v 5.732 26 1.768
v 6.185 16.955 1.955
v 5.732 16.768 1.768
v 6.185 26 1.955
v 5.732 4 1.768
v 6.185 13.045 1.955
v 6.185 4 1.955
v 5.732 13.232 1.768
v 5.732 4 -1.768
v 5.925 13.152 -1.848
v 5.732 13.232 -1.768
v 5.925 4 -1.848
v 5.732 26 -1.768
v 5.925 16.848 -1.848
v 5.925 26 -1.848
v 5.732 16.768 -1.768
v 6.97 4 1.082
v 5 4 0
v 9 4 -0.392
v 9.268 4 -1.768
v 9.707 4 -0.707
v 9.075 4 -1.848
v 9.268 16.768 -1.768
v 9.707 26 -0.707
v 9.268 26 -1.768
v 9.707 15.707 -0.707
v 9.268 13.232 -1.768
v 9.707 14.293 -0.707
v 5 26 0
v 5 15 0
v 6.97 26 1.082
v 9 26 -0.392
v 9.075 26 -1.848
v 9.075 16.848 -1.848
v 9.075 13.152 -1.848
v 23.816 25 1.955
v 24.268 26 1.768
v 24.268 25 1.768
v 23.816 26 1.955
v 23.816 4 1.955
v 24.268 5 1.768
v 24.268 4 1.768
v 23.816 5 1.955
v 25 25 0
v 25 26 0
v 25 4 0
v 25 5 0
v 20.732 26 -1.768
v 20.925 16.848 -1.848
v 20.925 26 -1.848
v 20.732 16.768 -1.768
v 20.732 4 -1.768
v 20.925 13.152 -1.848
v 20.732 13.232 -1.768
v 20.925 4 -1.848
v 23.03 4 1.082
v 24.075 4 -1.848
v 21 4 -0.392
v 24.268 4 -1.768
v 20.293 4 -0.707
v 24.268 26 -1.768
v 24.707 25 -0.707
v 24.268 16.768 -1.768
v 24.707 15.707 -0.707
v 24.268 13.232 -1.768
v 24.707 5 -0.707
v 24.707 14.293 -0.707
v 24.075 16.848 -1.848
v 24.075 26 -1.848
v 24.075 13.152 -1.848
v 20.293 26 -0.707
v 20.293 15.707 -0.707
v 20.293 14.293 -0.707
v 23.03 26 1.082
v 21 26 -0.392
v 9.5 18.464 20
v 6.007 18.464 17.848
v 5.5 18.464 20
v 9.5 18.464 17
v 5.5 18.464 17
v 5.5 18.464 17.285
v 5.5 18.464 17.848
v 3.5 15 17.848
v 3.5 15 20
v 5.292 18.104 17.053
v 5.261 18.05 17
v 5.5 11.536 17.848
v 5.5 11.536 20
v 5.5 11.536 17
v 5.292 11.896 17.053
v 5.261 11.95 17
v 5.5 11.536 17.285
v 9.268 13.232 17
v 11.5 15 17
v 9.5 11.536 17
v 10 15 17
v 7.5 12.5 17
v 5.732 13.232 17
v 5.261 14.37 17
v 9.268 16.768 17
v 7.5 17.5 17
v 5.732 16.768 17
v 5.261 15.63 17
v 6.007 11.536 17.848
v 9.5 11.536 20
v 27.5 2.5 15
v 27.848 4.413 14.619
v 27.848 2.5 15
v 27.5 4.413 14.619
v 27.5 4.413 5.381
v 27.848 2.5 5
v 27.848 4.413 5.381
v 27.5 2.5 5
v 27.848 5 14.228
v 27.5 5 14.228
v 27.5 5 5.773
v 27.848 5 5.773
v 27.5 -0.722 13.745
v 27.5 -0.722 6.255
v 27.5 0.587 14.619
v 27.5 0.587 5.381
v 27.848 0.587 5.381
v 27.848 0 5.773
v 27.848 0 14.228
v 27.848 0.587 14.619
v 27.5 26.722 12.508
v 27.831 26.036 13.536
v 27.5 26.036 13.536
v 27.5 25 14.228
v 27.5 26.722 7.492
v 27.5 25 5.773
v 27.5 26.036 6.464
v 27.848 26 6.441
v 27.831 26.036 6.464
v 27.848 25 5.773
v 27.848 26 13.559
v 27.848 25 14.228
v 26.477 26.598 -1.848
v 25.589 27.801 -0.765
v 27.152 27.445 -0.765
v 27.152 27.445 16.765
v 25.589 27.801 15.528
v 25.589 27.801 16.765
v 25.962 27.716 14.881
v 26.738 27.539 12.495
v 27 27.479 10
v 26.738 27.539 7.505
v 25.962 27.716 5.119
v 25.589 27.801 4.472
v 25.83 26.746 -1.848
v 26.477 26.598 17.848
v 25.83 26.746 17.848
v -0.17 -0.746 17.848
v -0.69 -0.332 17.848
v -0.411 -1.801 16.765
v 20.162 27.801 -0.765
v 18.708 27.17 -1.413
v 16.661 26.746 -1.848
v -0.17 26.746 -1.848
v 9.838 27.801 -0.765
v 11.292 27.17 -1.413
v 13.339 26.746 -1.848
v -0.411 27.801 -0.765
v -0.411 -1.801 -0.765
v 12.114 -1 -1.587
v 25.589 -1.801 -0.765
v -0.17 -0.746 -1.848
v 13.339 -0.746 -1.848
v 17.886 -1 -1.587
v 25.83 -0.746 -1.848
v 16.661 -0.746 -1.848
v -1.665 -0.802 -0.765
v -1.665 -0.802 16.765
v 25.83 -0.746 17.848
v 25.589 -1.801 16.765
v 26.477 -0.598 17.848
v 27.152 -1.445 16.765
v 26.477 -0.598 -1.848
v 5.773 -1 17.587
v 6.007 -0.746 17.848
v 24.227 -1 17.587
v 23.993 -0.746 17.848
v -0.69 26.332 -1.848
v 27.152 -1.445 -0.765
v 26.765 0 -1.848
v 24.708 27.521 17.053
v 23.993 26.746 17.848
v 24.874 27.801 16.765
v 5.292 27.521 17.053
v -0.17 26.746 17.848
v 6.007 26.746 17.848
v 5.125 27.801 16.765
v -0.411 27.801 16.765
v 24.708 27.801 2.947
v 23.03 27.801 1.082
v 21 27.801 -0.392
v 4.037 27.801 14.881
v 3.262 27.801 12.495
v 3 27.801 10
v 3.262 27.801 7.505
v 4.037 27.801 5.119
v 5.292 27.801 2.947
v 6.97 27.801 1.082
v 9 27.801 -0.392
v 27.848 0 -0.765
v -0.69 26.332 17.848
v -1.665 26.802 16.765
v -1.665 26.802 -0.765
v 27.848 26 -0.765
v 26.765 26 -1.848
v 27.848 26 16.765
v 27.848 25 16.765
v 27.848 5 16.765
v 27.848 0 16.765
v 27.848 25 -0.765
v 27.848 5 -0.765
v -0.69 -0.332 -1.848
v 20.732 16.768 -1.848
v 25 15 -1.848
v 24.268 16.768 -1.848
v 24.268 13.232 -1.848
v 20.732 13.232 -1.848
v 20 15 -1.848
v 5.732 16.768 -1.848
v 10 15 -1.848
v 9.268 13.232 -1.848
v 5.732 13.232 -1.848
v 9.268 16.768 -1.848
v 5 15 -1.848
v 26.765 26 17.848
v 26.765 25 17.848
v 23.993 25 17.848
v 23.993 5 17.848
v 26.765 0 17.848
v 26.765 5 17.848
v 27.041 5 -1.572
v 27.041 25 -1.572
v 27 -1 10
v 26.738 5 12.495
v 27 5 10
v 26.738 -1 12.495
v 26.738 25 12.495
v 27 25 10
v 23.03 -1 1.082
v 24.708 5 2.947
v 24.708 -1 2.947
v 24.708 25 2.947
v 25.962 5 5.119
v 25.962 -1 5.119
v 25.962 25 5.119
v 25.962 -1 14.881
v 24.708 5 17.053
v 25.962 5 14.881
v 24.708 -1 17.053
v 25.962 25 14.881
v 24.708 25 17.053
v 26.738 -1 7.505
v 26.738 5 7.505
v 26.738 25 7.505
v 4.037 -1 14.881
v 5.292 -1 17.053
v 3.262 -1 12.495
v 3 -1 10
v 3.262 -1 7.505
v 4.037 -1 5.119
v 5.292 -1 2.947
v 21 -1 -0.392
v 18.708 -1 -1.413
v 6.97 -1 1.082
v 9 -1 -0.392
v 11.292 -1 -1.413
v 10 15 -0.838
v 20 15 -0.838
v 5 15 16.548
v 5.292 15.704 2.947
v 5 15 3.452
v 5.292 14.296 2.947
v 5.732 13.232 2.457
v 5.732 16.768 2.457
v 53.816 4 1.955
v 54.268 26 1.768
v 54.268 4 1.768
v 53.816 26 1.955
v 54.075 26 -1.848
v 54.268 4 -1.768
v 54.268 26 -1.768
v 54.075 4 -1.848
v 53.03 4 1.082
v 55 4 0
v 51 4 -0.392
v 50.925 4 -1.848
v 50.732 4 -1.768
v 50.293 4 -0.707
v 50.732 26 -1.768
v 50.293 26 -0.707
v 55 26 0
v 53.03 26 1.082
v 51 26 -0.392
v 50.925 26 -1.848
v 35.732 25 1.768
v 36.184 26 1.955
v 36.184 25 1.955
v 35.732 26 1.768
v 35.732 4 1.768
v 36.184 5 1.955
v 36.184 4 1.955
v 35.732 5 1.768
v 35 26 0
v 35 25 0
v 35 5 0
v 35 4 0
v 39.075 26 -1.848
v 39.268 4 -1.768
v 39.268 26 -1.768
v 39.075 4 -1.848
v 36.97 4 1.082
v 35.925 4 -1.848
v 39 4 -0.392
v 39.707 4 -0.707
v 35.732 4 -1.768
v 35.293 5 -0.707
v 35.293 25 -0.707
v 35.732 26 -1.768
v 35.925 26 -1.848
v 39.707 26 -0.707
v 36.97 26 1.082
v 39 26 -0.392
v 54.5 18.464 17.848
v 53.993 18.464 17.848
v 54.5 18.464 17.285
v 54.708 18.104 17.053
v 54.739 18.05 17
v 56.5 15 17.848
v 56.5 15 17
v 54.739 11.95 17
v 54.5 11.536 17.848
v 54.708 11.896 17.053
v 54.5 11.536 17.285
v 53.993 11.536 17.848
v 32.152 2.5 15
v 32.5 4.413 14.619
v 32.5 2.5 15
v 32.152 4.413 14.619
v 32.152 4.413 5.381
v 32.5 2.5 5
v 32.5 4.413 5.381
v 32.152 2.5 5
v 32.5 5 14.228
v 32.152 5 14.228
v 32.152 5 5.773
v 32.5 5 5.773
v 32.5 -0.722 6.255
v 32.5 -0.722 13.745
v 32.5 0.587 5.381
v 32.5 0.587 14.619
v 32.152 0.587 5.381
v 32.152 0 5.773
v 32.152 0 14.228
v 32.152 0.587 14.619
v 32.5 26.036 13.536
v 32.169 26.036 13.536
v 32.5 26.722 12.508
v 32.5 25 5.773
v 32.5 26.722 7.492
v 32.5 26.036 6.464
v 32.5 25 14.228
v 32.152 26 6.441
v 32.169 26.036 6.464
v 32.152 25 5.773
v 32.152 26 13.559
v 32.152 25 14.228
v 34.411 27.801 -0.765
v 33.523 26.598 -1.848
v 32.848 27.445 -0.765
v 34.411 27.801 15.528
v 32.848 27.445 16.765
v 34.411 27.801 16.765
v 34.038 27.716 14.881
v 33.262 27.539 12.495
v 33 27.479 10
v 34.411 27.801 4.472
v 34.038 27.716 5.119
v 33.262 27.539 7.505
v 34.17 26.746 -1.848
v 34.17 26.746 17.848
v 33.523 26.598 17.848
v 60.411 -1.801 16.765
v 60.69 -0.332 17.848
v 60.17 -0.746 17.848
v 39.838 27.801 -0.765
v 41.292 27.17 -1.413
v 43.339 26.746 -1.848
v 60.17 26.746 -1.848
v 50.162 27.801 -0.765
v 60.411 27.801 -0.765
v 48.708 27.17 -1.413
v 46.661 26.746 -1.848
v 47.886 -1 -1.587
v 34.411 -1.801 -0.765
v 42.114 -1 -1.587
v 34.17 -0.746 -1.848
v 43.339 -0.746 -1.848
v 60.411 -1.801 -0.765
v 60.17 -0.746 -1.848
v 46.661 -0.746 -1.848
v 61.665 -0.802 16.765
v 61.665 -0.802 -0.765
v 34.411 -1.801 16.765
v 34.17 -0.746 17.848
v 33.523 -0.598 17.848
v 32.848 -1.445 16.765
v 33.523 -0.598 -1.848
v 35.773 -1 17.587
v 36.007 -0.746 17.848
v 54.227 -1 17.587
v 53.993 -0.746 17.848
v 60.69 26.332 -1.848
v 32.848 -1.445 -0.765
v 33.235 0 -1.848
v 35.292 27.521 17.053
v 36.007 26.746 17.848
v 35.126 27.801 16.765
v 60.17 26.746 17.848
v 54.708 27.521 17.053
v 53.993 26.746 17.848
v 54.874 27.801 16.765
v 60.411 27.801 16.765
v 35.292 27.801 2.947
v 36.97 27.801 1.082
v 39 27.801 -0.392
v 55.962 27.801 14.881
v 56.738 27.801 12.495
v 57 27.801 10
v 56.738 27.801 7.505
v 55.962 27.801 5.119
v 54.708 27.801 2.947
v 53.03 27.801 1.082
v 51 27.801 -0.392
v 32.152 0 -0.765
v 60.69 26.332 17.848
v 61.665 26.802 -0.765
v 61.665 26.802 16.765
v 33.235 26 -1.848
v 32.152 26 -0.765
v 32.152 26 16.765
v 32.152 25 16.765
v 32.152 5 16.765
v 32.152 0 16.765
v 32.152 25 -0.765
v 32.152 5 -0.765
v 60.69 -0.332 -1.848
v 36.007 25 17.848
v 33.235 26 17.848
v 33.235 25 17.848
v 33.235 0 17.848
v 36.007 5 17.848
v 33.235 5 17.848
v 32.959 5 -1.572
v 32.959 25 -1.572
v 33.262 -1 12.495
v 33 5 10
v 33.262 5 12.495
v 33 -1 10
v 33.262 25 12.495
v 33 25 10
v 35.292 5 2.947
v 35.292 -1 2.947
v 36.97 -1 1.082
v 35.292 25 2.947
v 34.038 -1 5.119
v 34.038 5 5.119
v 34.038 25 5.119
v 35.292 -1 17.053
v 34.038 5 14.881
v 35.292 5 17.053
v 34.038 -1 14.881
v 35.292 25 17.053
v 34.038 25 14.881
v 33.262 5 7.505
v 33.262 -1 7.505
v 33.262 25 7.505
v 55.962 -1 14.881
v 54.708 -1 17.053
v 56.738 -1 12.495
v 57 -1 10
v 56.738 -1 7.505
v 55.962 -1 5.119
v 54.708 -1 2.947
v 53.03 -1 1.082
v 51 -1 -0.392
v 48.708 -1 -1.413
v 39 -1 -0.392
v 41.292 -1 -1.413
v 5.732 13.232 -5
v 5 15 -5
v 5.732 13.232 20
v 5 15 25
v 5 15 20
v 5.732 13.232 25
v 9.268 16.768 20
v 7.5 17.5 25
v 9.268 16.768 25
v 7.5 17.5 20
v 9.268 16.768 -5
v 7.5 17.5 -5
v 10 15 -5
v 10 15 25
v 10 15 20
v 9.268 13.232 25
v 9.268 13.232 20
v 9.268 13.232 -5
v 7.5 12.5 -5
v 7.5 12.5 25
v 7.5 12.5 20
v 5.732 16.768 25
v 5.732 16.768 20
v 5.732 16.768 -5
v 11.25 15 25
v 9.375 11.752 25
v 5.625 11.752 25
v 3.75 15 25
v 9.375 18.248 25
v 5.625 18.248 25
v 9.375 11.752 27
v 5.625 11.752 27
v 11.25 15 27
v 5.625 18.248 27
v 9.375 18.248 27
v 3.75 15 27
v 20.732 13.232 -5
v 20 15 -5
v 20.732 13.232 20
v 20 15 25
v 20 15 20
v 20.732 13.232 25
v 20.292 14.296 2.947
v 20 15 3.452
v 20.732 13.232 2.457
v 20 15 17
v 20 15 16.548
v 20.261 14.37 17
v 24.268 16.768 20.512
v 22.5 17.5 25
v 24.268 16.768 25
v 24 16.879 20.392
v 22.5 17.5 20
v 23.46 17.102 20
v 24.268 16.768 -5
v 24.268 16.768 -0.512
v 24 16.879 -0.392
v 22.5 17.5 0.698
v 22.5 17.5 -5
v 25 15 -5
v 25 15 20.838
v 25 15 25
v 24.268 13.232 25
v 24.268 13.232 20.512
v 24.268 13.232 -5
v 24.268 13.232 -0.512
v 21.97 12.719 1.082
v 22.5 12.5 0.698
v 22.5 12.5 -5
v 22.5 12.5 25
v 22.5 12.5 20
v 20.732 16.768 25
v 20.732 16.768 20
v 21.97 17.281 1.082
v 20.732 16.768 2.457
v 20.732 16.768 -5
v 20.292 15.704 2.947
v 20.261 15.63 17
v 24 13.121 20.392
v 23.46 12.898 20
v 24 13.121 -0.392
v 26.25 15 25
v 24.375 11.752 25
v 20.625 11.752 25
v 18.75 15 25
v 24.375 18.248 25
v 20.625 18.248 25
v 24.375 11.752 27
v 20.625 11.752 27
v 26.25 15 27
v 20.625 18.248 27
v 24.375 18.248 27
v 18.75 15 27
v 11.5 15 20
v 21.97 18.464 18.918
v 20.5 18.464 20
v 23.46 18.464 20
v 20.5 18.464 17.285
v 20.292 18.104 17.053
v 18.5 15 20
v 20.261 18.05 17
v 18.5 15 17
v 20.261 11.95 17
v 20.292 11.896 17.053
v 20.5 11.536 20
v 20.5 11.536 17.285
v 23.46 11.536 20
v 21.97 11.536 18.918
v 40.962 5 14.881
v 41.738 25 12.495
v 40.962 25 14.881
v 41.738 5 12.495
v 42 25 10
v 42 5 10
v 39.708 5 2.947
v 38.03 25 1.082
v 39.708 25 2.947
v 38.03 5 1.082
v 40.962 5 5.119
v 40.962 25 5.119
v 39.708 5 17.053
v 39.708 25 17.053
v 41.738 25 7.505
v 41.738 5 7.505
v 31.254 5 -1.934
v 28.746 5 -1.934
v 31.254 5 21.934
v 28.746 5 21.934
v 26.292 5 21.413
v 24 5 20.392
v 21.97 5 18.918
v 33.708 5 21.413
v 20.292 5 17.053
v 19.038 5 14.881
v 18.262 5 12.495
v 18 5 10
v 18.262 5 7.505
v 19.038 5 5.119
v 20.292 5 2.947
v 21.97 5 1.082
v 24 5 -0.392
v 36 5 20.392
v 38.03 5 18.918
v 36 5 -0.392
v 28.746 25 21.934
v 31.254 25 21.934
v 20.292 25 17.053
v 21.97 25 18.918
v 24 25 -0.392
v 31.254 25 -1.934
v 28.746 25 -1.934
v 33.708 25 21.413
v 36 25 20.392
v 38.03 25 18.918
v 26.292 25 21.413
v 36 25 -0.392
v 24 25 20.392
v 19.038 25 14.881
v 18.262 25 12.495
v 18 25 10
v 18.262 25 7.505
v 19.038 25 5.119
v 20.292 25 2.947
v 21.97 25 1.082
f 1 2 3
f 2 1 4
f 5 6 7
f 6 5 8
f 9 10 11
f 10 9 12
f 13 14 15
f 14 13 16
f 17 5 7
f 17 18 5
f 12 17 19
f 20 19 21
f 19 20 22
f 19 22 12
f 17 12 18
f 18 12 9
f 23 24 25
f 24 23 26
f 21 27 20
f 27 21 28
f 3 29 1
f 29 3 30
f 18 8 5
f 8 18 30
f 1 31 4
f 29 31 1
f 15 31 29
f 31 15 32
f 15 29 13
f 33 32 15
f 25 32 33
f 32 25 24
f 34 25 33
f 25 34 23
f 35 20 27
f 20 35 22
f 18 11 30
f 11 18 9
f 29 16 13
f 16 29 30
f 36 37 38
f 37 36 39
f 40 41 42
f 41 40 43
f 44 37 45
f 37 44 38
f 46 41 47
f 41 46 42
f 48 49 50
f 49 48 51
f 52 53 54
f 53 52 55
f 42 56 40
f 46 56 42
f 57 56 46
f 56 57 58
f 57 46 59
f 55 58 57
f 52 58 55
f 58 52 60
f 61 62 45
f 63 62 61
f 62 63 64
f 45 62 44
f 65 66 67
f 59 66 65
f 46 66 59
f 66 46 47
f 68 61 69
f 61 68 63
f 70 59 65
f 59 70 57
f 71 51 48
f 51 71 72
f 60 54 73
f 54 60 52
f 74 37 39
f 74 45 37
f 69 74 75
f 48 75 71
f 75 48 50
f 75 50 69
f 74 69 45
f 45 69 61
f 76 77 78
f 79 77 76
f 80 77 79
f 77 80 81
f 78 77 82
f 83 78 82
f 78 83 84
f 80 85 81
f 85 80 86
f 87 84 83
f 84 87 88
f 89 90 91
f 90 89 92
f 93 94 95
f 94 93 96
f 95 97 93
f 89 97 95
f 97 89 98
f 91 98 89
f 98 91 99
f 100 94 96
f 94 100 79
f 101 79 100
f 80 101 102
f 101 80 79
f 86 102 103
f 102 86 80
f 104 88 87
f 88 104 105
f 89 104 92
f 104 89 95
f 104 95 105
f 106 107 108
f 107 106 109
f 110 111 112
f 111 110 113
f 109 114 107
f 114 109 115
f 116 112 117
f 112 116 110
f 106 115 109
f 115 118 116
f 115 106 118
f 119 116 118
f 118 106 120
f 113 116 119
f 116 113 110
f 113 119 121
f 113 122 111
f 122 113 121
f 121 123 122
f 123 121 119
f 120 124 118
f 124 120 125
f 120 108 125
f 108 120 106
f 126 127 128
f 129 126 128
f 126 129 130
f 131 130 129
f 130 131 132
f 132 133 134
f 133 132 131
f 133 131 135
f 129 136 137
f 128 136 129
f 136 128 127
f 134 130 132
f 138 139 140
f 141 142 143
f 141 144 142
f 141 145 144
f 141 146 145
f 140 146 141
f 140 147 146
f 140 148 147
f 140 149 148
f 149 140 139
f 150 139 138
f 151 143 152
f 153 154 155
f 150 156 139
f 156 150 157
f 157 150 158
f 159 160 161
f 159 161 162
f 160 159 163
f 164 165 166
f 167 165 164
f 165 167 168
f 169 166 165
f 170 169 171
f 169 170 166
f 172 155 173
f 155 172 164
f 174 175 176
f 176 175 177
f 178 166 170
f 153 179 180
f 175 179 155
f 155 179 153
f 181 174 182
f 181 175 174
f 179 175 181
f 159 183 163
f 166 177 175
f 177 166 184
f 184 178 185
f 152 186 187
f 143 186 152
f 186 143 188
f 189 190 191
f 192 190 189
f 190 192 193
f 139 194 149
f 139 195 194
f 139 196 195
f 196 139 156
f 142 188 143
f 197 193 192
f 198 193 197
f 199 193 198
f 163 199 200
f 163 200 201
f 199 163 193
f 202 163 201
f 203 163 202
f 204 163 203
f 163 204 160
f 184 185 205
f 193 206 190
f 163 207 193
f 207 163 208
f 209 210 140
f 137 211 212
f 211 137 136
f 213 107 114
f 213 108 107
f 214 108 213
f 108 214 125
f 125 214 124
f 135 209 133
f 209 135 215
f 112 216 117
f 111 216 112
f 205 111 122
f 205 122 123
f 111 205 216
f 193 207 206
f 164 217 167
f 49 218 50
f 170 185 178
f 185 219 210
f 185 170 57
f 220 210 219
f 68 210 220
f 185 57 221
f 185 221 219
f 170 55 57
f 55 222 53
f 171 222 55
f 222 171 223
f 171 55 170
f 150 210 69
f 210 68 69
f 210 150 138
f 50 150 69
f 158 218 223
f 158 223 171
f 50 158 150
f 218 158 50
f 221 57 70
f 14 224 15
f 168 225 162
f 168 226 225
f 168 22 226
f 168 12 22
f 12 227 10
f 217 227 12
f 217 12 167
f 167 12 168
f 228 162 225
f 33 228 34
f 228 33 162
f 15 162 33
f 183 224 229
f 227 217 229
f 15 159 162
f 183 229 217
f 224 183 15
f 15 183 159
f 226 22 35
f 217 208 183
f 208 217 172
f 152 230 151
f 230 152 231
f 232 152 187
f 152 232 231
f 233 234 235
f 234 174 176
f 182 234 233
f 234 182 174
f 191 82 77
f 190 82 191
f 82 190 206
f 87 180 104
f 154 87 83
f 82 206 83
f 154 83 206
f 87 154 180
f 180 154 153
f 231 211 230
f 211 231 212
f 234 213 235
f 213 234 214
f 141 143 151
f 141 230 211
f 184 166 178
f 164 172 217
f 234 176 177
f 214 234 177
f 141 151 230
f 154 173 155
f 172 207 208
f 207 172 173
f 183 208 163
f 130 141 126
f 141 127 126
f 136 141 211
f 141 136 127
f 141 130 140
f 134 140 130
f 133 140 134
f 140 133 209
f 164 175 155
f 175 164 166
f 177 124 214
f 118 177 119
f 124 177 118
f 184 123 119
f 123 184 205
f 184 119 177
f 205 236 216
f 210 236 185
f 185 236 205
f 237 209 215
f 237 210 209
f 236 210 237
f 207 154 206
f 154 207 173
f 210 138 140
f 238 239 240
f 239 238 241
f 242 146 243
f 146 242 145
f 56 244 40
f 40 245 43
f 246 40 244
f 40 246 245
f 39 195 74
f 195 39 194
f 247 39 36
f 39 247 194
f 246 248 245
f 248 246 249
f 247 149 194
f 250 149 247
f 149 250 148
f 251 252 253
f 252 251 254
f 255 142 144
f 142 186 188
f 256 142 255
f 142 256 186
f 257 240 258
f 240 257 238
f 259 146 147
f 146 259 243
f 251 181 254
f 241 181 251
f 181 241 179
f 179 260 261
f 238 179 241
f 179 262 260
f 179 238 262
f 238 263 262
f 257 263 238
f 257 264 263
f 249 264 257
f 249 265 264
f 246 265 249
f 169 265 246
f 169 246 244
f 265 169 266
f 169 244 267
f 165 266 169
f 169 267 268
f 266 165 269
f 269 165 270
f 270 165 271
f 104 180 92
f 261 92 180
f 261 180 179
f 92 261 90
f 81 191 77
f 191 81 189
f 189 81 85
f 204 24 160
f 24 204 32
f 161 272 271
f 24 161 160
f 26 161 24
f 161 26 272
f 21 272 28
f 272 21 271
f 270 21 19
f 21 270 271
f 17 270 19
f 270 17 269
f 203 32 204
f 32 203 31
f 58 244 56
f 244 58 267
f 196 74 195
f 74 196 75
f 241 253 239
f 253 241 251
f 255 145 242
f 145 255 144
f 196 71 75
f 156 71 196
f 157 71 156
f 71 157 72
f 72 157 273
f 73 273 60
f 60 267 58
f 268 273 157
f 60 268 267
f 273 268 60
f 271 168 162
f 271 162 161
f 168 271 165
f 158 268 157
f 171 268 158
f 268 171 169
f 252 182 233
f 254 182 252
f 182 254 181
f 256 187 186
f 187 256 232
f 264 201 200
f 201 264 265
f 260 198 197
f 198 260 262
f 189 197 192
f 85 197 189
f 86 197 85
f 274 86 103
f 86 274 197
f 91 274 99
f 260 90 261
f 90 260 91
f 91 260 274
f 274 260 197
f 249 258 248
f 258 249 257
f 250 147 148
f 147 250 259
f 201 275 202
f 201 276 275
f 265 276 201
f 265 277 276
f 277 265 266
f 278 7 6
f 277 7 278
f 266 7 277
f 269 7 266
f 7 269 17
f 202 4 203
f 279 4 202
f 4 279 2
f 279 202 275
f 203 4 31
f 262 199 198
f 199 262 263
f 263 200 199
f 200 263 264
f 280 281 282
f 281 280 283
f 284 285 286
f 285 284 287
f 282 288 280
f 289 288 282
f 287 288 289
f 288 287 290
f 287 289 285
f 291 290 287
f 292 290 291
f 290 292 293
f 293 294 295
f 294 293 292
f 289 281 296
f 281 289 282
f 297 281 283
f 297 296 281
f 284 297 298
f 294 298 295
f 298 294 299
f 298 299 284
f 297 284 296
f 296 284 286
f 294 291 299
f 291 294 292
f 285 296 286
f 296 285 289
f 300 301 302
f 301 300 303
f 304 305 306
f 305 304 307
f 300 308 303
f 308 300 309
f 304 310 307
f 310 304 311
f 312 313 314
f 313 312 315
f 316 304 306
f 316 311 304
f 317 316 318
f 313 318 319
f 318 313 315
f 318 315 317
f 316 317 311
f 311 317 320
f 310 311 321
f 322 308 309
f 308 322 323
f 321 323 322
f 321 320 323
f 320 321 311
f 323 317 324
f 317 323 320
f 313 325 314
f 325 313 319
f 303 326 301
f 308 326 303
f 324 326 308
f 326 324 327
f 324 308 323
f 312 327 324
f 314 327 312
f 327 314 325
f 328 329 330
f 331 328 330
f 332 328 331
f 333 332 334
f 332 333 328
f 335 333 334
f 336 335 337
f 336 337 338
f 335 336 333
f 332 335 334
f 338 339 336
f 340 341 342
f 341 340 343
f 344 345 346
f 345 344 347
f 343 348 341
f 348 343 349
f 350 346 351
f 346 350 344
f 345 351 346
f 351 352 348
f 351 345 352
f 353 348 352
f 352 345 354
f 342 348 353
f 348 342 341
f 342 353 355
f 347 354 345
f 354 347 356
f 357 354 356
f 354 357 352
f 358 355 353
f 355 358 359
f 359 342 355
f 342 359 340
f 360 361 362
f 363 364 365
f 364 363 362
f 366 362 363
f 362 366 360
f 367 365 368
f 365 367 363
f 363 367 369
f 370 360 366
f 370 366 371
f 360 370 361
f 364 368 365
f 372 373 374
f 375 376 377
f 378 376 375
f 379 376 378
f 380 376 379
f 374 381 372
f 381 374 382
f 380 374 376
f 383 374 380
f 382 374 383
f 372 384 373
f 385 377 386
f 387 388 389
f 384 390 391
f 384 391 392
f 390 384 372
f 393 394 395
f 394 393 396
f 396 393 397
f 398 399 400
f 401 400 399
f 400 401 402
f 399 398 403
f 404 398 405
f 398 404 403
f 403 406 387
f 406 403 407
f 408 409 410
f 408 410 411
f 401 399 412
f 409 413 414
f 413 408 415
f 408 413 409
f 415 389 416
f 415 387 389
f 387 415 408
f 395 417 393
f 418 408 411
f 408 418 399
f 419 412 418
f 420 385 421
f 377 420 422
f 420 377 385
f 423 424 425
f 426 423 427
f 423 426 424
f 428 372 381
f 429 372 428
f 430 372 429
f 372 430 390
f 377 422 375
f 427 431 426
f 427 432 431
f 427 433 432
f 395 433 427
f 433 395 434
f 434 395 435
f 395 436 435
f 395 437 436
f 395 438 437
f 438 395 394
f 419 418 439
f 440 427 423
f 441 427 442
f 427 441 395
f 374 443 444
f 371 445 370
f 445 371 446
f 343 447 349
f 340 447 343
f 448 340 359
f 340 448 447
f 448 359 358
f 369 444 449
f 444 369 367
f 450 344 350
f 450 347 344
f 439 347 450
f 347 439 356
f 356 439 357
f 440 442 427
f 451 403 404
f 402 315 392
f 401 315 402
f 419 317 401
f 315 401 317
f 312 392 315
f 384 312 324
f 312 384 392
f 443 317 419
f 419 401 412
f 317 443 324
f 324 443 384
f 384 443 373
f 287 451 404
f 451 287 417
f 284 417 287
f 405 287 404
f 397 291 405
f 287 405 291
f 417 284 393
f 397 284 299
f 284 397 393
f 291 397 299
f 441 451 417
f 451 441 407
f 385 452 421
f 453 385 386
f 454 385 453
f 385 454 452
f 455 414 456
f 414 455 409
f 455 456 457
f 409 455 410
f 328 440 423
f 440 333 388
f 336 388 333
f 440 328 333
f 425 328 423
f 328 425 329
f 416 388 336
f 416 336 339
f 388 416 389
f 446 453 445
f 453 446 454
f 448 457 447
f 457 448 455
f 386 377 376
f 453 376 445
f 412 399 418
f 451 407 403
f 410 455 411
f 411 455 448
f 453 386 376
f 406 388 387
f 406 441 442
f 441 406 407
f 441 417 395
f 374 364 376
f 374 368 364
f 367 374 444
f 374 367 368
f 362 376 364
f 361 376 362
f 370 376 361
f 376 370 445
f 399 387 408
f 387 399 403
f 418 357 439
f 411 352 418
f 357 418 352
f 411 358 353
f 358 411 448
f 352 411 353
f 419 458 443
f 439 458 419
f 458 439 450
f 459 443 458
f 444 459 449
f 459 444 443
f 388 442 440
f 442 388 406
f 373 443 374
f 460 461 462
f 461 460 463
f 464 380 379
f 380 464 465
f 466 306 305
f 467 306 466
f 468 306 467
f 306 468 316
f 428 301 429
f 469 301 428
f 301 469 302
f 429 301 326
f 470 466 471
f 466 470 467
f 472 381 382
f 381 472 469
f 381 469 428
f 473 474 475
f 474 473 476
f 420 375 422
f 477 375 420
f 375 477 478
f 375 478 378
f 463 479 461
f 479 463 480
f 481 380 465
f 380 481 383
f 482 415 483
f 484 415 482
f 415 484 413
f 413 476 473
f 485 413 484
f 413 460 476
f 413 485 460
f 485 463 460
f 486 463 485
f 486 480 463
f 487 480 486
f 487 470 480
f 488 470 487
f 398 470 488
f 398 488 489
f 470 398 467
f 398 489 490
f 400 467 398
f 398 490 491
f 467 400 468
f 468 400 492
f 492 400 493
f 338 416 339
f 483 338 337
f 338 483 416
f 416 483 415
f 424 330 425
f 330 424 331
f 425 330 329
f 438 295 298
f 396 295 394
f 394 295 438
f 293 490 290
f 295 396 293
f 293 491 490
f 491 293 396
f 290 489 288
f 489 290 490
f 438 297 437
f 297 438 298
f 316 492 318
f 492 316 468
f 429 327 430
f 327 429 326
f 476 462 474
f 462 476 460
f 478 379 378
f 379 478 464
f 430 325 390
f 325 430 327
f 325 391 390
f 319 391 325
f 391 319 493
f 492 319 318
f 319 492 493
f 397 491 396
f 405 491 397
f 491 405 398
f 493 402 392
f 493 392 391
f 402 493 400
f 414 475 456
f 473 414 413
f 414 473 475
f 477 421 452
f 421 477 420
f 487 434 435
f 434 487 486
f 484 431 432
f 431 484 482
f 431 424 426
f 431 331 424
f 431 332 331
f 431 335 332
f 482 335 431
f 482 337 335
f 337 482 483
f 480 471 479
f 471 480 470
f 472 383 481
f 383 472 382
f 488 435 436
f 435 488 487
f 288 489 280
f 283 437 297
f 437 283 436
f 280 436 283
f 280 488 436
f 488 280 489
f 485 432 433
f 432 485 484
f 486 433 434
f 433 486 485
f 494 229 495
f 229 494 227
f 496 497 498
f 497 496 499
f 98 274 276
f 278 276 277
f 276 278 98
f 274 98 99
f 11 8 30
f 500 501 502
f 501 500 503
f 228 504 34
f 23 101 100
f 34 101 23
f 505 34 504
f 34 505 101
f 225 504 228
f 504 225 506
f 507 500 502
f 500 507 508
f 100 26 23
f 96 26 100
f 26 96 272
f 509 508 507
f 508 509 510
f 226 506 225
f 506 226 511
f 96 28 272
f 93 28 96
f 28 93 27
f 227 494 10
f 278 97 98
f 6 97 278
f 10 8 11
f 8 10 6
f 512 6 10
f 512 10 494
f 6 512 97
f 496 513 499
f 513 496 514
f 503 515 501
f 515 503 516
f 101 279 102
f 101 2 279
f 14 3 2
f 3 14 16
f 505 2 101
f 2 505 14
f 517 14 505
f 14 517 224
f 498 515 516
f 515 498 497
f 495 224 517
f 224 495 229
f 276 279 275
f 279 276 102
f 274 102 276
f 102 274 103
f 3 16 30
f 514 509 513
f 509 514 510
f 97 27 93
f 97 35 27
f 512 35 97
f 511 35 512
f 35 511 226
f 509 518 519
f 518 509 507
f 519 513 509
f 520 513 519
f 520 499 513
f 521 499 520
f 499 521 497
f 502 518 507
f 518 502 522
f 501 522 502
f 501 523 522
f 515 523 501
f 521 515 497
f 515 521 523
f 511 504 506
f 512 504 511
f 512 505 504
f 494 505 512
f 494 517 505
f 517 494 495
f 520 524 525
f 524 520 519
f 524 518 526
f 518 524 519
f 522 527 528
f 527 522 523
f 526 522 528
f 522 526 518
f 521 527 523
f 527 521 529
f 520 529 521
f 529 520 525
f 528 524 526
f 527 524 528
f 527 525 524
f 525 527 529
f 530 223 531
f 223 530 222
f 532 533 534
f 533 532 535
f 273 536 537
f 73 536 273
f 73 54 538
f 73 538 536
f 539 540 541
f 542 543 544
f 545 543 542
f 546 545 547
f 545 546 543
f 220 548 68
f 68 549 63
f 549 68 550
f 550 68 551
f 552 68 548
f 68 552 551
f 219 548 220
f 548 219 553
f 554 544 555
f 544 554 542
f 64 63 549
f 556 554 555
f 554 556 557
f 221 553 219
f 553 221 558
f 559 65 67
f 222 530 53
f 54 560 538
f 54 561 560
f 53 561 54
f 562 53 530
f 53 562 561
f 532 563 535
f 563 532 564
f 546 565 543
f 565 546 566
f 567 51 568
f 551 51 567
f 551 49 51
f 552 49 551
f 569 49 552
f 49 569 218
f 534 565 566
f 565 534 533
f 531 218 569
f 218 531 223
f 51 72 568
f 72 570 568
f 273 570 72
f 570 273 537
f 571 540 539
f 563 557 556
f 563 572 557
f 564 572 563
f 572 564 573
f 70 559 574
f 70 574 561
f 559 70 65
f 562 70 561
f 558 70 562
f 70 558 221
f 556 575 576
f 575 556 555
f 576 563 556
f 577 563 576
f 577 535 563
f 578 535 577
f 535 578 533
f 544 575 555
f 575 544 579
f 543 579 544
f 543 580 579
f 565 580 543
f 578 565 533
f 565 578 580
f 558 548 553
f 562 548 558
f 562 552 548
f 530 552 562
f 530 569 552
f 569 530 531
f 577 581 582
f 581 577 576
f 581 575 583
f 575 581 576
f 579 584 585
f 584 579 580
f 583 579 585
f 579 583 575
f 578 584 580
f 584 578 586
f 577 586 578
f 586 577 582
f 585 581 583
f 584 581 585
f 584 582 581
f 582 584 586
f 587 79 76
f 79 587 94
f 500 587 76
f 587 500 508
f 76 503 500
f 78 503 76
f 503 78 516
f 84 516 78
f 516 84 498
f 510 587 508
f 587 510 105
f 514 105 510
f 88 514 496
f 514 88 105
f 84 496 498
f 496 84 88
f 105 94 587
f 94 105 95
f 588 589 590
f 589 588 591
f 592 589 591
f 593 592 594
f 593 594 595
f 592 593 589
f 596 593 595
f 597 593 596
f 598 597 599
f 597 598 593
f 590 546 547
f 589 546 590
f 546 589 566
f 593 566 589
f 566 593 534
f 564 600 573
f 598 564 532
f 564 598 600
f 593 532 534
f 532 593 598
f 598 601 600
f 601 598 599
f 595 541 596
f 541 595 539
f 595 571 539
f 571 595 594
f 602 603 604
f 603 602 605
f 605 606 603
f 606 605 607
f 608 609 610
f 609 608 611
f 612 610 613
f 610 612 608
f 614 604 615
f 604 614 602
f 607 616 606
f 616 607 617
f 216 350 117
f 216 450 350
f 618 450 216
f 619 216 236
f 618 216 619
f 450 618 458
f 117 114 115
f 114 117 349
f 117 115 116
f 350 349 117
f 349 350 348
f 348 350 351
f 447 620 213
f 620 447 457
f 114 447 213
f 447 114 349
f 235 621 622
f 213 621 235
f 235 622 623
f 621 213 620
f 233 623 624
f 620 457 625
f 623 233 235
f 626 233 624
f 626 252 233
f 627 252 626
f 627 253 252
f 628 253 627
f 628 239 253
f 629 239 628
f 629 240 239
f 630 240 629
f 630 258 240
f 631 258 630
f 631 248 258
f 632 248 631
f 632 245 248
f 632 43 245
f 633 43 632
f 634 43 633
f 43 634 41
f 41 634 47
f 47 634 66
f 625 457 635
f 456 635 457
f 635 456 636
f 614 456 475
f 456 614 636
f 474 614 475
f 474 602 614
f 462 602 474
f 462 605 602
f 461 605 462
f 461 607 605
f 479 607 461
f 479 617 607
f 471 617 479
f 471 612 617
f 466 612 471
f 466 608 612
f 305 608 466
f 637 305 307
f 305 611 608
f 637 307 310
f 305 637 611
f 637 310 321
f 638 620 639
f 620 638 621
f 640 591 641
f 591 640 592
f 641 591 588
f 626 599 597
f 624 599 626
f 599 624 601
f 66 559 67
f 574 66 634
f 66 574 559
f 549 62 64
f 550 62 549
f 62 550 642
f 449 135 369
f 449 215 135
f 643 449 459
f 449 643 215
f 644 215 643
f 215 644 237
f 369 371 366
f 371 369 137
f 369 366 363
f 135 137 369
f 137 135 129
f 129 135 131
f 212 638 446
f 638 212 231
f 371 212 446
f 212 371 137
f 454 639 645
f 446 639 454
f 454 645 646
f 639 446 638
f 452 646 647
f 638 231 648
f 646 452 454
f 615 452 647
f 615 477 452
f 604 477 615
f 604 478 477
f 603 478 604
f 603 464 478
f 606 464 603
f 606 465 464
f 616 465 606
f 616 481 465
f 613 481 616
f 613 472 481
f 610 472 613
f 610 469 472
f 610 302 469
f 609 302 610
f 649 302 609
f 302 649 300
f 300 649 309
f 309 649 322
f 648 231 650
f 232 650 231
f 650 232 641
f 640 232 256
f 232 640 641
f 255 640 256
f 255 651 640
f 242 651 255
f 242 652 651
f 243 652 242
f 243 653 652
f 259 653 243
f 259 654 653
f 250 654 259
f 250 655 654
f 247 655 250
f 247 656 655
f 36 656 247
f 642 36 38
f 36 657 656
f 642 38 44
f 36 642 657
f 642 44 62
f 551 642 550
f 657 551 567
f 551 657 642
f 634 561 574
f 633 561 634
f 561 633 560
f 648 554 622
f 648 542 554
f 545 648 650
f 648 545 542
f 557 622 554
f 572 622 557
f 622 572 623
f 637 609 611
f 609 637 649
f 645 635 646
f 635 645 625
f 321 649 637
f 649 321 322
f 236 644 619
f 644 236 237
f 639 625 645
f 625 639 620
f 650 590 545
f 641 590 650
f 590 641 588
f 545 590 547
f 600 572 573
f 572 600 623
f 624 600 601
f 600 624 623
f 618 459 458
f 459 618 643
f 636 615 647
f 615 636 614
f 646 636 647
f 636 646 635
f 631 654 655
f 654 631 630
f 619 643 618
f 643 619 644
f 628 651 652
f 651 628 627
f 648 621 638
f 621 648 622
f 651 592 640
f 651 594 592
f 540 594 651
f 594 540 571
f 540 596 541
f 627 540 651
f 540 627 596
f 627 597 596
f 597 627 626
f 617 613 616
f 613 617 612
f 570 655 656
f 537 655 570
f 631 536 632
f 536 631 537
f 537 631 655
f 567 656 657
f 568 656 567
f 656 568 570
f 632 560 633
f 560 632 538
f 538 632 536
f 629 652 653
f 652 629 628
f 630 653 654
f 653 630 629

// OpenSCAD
// Parameters
jaw_length = 30;
jaw_width = 30;
jaw_height = 20;
tooth_radius = 5;
tooth_depth = 5;
core_radius = 12;
core_length = 20;
bolt_radius = 2.5;
bolt_length = 30;
nut_radius = 4;
nut_height = 3;

// Modules
module interlocking_tooth(offset=0) {
    translate([offset, 0, 0])
        rotate([0, 90, 0])
            cylinder(h=tooth_depth, r=tooth_radius, center=true);
}

module rounded_cube(size, radius) {
    minkowski() {
        cube(size - [2*radius, 2*radius, 2*radius]);
        sphere(r=radius);
    }
}

module jaw_block(mirror=false) {
    translate([mirror ? jaw_length : 0, 0, 0])
    mirror([mirror ? 1 : 0, 0, 0])
    difference() {
        // Rounded outer block
        translate([0, 0, 0])
            rounded_cube([jaw_length, jaw_width, jaw_height], 2);

        // Central bore
        translate([jaw_length/2, jaw_width/2, jaw_height/2])
            rotate([90,0,0])
                cylinder(h=jaw_width+2, r=core_radius, center=true);

        // Bolt holes
        for (x = [jaw_length*0.25, jaw_length*0.75])
            translate([x, jaw_width/2, 0])
                rotate([90,0,0])
                    cylinder(h=jaw_height+2, r=bolt_radius, center=true);

        // Nut recesses
        for (x = [jaw_length*0.25, jaw_length*0.75])
            translate([x, jaw_width/2, jaw_height - nut_height])
                cylinder(h=nut_height+0.1, r=nut_radius, $fn=6);

        // Interlocking curved teeth
        for (i = [0:2]) {
            translate([jaw_length, i*10 + 2.5, jaw_height/2])
                interlocking_tooth();
        }
    }
}

module central_core() {
    translate([jaw_length, jaw_width/2, jaw_height/2])
        rotate([90,0,0])
            cylinder(h=core_length, r=core_radius, center=true);
}

module bolt() {
    union() {
        // Shaft
        cylinder(h=bolt_length, r=bolt_radius);
        // Hex head
        translate([0,0,bolt_length])
            cylinder(h=2, r=bolt_radius*1.5, $fn=6);
    }
}

module nut() {
    cylinder(h=nut_height, r=nut_radius, $fn=6);
}

// Assembly
module assembly() {
    // Left jaw
    jaw_block(false);

    // Right jaw
    translate([jaw_length, 0, 0])
        jaw_block(true);

    // Core
    central_core();

    // Bolts
    for (x = [jaw_length*0.25, jaw_length*0.75])
        translate([x, jaw_width/2, -5])
            bolt();

    // Nuts
    for (x = [jaw_length*0.25, jaw_length*0.75])
        translate([x, jaw_width/2, jaw_height - nut_height])
            nut();
}

// Render the full model
assembly();
